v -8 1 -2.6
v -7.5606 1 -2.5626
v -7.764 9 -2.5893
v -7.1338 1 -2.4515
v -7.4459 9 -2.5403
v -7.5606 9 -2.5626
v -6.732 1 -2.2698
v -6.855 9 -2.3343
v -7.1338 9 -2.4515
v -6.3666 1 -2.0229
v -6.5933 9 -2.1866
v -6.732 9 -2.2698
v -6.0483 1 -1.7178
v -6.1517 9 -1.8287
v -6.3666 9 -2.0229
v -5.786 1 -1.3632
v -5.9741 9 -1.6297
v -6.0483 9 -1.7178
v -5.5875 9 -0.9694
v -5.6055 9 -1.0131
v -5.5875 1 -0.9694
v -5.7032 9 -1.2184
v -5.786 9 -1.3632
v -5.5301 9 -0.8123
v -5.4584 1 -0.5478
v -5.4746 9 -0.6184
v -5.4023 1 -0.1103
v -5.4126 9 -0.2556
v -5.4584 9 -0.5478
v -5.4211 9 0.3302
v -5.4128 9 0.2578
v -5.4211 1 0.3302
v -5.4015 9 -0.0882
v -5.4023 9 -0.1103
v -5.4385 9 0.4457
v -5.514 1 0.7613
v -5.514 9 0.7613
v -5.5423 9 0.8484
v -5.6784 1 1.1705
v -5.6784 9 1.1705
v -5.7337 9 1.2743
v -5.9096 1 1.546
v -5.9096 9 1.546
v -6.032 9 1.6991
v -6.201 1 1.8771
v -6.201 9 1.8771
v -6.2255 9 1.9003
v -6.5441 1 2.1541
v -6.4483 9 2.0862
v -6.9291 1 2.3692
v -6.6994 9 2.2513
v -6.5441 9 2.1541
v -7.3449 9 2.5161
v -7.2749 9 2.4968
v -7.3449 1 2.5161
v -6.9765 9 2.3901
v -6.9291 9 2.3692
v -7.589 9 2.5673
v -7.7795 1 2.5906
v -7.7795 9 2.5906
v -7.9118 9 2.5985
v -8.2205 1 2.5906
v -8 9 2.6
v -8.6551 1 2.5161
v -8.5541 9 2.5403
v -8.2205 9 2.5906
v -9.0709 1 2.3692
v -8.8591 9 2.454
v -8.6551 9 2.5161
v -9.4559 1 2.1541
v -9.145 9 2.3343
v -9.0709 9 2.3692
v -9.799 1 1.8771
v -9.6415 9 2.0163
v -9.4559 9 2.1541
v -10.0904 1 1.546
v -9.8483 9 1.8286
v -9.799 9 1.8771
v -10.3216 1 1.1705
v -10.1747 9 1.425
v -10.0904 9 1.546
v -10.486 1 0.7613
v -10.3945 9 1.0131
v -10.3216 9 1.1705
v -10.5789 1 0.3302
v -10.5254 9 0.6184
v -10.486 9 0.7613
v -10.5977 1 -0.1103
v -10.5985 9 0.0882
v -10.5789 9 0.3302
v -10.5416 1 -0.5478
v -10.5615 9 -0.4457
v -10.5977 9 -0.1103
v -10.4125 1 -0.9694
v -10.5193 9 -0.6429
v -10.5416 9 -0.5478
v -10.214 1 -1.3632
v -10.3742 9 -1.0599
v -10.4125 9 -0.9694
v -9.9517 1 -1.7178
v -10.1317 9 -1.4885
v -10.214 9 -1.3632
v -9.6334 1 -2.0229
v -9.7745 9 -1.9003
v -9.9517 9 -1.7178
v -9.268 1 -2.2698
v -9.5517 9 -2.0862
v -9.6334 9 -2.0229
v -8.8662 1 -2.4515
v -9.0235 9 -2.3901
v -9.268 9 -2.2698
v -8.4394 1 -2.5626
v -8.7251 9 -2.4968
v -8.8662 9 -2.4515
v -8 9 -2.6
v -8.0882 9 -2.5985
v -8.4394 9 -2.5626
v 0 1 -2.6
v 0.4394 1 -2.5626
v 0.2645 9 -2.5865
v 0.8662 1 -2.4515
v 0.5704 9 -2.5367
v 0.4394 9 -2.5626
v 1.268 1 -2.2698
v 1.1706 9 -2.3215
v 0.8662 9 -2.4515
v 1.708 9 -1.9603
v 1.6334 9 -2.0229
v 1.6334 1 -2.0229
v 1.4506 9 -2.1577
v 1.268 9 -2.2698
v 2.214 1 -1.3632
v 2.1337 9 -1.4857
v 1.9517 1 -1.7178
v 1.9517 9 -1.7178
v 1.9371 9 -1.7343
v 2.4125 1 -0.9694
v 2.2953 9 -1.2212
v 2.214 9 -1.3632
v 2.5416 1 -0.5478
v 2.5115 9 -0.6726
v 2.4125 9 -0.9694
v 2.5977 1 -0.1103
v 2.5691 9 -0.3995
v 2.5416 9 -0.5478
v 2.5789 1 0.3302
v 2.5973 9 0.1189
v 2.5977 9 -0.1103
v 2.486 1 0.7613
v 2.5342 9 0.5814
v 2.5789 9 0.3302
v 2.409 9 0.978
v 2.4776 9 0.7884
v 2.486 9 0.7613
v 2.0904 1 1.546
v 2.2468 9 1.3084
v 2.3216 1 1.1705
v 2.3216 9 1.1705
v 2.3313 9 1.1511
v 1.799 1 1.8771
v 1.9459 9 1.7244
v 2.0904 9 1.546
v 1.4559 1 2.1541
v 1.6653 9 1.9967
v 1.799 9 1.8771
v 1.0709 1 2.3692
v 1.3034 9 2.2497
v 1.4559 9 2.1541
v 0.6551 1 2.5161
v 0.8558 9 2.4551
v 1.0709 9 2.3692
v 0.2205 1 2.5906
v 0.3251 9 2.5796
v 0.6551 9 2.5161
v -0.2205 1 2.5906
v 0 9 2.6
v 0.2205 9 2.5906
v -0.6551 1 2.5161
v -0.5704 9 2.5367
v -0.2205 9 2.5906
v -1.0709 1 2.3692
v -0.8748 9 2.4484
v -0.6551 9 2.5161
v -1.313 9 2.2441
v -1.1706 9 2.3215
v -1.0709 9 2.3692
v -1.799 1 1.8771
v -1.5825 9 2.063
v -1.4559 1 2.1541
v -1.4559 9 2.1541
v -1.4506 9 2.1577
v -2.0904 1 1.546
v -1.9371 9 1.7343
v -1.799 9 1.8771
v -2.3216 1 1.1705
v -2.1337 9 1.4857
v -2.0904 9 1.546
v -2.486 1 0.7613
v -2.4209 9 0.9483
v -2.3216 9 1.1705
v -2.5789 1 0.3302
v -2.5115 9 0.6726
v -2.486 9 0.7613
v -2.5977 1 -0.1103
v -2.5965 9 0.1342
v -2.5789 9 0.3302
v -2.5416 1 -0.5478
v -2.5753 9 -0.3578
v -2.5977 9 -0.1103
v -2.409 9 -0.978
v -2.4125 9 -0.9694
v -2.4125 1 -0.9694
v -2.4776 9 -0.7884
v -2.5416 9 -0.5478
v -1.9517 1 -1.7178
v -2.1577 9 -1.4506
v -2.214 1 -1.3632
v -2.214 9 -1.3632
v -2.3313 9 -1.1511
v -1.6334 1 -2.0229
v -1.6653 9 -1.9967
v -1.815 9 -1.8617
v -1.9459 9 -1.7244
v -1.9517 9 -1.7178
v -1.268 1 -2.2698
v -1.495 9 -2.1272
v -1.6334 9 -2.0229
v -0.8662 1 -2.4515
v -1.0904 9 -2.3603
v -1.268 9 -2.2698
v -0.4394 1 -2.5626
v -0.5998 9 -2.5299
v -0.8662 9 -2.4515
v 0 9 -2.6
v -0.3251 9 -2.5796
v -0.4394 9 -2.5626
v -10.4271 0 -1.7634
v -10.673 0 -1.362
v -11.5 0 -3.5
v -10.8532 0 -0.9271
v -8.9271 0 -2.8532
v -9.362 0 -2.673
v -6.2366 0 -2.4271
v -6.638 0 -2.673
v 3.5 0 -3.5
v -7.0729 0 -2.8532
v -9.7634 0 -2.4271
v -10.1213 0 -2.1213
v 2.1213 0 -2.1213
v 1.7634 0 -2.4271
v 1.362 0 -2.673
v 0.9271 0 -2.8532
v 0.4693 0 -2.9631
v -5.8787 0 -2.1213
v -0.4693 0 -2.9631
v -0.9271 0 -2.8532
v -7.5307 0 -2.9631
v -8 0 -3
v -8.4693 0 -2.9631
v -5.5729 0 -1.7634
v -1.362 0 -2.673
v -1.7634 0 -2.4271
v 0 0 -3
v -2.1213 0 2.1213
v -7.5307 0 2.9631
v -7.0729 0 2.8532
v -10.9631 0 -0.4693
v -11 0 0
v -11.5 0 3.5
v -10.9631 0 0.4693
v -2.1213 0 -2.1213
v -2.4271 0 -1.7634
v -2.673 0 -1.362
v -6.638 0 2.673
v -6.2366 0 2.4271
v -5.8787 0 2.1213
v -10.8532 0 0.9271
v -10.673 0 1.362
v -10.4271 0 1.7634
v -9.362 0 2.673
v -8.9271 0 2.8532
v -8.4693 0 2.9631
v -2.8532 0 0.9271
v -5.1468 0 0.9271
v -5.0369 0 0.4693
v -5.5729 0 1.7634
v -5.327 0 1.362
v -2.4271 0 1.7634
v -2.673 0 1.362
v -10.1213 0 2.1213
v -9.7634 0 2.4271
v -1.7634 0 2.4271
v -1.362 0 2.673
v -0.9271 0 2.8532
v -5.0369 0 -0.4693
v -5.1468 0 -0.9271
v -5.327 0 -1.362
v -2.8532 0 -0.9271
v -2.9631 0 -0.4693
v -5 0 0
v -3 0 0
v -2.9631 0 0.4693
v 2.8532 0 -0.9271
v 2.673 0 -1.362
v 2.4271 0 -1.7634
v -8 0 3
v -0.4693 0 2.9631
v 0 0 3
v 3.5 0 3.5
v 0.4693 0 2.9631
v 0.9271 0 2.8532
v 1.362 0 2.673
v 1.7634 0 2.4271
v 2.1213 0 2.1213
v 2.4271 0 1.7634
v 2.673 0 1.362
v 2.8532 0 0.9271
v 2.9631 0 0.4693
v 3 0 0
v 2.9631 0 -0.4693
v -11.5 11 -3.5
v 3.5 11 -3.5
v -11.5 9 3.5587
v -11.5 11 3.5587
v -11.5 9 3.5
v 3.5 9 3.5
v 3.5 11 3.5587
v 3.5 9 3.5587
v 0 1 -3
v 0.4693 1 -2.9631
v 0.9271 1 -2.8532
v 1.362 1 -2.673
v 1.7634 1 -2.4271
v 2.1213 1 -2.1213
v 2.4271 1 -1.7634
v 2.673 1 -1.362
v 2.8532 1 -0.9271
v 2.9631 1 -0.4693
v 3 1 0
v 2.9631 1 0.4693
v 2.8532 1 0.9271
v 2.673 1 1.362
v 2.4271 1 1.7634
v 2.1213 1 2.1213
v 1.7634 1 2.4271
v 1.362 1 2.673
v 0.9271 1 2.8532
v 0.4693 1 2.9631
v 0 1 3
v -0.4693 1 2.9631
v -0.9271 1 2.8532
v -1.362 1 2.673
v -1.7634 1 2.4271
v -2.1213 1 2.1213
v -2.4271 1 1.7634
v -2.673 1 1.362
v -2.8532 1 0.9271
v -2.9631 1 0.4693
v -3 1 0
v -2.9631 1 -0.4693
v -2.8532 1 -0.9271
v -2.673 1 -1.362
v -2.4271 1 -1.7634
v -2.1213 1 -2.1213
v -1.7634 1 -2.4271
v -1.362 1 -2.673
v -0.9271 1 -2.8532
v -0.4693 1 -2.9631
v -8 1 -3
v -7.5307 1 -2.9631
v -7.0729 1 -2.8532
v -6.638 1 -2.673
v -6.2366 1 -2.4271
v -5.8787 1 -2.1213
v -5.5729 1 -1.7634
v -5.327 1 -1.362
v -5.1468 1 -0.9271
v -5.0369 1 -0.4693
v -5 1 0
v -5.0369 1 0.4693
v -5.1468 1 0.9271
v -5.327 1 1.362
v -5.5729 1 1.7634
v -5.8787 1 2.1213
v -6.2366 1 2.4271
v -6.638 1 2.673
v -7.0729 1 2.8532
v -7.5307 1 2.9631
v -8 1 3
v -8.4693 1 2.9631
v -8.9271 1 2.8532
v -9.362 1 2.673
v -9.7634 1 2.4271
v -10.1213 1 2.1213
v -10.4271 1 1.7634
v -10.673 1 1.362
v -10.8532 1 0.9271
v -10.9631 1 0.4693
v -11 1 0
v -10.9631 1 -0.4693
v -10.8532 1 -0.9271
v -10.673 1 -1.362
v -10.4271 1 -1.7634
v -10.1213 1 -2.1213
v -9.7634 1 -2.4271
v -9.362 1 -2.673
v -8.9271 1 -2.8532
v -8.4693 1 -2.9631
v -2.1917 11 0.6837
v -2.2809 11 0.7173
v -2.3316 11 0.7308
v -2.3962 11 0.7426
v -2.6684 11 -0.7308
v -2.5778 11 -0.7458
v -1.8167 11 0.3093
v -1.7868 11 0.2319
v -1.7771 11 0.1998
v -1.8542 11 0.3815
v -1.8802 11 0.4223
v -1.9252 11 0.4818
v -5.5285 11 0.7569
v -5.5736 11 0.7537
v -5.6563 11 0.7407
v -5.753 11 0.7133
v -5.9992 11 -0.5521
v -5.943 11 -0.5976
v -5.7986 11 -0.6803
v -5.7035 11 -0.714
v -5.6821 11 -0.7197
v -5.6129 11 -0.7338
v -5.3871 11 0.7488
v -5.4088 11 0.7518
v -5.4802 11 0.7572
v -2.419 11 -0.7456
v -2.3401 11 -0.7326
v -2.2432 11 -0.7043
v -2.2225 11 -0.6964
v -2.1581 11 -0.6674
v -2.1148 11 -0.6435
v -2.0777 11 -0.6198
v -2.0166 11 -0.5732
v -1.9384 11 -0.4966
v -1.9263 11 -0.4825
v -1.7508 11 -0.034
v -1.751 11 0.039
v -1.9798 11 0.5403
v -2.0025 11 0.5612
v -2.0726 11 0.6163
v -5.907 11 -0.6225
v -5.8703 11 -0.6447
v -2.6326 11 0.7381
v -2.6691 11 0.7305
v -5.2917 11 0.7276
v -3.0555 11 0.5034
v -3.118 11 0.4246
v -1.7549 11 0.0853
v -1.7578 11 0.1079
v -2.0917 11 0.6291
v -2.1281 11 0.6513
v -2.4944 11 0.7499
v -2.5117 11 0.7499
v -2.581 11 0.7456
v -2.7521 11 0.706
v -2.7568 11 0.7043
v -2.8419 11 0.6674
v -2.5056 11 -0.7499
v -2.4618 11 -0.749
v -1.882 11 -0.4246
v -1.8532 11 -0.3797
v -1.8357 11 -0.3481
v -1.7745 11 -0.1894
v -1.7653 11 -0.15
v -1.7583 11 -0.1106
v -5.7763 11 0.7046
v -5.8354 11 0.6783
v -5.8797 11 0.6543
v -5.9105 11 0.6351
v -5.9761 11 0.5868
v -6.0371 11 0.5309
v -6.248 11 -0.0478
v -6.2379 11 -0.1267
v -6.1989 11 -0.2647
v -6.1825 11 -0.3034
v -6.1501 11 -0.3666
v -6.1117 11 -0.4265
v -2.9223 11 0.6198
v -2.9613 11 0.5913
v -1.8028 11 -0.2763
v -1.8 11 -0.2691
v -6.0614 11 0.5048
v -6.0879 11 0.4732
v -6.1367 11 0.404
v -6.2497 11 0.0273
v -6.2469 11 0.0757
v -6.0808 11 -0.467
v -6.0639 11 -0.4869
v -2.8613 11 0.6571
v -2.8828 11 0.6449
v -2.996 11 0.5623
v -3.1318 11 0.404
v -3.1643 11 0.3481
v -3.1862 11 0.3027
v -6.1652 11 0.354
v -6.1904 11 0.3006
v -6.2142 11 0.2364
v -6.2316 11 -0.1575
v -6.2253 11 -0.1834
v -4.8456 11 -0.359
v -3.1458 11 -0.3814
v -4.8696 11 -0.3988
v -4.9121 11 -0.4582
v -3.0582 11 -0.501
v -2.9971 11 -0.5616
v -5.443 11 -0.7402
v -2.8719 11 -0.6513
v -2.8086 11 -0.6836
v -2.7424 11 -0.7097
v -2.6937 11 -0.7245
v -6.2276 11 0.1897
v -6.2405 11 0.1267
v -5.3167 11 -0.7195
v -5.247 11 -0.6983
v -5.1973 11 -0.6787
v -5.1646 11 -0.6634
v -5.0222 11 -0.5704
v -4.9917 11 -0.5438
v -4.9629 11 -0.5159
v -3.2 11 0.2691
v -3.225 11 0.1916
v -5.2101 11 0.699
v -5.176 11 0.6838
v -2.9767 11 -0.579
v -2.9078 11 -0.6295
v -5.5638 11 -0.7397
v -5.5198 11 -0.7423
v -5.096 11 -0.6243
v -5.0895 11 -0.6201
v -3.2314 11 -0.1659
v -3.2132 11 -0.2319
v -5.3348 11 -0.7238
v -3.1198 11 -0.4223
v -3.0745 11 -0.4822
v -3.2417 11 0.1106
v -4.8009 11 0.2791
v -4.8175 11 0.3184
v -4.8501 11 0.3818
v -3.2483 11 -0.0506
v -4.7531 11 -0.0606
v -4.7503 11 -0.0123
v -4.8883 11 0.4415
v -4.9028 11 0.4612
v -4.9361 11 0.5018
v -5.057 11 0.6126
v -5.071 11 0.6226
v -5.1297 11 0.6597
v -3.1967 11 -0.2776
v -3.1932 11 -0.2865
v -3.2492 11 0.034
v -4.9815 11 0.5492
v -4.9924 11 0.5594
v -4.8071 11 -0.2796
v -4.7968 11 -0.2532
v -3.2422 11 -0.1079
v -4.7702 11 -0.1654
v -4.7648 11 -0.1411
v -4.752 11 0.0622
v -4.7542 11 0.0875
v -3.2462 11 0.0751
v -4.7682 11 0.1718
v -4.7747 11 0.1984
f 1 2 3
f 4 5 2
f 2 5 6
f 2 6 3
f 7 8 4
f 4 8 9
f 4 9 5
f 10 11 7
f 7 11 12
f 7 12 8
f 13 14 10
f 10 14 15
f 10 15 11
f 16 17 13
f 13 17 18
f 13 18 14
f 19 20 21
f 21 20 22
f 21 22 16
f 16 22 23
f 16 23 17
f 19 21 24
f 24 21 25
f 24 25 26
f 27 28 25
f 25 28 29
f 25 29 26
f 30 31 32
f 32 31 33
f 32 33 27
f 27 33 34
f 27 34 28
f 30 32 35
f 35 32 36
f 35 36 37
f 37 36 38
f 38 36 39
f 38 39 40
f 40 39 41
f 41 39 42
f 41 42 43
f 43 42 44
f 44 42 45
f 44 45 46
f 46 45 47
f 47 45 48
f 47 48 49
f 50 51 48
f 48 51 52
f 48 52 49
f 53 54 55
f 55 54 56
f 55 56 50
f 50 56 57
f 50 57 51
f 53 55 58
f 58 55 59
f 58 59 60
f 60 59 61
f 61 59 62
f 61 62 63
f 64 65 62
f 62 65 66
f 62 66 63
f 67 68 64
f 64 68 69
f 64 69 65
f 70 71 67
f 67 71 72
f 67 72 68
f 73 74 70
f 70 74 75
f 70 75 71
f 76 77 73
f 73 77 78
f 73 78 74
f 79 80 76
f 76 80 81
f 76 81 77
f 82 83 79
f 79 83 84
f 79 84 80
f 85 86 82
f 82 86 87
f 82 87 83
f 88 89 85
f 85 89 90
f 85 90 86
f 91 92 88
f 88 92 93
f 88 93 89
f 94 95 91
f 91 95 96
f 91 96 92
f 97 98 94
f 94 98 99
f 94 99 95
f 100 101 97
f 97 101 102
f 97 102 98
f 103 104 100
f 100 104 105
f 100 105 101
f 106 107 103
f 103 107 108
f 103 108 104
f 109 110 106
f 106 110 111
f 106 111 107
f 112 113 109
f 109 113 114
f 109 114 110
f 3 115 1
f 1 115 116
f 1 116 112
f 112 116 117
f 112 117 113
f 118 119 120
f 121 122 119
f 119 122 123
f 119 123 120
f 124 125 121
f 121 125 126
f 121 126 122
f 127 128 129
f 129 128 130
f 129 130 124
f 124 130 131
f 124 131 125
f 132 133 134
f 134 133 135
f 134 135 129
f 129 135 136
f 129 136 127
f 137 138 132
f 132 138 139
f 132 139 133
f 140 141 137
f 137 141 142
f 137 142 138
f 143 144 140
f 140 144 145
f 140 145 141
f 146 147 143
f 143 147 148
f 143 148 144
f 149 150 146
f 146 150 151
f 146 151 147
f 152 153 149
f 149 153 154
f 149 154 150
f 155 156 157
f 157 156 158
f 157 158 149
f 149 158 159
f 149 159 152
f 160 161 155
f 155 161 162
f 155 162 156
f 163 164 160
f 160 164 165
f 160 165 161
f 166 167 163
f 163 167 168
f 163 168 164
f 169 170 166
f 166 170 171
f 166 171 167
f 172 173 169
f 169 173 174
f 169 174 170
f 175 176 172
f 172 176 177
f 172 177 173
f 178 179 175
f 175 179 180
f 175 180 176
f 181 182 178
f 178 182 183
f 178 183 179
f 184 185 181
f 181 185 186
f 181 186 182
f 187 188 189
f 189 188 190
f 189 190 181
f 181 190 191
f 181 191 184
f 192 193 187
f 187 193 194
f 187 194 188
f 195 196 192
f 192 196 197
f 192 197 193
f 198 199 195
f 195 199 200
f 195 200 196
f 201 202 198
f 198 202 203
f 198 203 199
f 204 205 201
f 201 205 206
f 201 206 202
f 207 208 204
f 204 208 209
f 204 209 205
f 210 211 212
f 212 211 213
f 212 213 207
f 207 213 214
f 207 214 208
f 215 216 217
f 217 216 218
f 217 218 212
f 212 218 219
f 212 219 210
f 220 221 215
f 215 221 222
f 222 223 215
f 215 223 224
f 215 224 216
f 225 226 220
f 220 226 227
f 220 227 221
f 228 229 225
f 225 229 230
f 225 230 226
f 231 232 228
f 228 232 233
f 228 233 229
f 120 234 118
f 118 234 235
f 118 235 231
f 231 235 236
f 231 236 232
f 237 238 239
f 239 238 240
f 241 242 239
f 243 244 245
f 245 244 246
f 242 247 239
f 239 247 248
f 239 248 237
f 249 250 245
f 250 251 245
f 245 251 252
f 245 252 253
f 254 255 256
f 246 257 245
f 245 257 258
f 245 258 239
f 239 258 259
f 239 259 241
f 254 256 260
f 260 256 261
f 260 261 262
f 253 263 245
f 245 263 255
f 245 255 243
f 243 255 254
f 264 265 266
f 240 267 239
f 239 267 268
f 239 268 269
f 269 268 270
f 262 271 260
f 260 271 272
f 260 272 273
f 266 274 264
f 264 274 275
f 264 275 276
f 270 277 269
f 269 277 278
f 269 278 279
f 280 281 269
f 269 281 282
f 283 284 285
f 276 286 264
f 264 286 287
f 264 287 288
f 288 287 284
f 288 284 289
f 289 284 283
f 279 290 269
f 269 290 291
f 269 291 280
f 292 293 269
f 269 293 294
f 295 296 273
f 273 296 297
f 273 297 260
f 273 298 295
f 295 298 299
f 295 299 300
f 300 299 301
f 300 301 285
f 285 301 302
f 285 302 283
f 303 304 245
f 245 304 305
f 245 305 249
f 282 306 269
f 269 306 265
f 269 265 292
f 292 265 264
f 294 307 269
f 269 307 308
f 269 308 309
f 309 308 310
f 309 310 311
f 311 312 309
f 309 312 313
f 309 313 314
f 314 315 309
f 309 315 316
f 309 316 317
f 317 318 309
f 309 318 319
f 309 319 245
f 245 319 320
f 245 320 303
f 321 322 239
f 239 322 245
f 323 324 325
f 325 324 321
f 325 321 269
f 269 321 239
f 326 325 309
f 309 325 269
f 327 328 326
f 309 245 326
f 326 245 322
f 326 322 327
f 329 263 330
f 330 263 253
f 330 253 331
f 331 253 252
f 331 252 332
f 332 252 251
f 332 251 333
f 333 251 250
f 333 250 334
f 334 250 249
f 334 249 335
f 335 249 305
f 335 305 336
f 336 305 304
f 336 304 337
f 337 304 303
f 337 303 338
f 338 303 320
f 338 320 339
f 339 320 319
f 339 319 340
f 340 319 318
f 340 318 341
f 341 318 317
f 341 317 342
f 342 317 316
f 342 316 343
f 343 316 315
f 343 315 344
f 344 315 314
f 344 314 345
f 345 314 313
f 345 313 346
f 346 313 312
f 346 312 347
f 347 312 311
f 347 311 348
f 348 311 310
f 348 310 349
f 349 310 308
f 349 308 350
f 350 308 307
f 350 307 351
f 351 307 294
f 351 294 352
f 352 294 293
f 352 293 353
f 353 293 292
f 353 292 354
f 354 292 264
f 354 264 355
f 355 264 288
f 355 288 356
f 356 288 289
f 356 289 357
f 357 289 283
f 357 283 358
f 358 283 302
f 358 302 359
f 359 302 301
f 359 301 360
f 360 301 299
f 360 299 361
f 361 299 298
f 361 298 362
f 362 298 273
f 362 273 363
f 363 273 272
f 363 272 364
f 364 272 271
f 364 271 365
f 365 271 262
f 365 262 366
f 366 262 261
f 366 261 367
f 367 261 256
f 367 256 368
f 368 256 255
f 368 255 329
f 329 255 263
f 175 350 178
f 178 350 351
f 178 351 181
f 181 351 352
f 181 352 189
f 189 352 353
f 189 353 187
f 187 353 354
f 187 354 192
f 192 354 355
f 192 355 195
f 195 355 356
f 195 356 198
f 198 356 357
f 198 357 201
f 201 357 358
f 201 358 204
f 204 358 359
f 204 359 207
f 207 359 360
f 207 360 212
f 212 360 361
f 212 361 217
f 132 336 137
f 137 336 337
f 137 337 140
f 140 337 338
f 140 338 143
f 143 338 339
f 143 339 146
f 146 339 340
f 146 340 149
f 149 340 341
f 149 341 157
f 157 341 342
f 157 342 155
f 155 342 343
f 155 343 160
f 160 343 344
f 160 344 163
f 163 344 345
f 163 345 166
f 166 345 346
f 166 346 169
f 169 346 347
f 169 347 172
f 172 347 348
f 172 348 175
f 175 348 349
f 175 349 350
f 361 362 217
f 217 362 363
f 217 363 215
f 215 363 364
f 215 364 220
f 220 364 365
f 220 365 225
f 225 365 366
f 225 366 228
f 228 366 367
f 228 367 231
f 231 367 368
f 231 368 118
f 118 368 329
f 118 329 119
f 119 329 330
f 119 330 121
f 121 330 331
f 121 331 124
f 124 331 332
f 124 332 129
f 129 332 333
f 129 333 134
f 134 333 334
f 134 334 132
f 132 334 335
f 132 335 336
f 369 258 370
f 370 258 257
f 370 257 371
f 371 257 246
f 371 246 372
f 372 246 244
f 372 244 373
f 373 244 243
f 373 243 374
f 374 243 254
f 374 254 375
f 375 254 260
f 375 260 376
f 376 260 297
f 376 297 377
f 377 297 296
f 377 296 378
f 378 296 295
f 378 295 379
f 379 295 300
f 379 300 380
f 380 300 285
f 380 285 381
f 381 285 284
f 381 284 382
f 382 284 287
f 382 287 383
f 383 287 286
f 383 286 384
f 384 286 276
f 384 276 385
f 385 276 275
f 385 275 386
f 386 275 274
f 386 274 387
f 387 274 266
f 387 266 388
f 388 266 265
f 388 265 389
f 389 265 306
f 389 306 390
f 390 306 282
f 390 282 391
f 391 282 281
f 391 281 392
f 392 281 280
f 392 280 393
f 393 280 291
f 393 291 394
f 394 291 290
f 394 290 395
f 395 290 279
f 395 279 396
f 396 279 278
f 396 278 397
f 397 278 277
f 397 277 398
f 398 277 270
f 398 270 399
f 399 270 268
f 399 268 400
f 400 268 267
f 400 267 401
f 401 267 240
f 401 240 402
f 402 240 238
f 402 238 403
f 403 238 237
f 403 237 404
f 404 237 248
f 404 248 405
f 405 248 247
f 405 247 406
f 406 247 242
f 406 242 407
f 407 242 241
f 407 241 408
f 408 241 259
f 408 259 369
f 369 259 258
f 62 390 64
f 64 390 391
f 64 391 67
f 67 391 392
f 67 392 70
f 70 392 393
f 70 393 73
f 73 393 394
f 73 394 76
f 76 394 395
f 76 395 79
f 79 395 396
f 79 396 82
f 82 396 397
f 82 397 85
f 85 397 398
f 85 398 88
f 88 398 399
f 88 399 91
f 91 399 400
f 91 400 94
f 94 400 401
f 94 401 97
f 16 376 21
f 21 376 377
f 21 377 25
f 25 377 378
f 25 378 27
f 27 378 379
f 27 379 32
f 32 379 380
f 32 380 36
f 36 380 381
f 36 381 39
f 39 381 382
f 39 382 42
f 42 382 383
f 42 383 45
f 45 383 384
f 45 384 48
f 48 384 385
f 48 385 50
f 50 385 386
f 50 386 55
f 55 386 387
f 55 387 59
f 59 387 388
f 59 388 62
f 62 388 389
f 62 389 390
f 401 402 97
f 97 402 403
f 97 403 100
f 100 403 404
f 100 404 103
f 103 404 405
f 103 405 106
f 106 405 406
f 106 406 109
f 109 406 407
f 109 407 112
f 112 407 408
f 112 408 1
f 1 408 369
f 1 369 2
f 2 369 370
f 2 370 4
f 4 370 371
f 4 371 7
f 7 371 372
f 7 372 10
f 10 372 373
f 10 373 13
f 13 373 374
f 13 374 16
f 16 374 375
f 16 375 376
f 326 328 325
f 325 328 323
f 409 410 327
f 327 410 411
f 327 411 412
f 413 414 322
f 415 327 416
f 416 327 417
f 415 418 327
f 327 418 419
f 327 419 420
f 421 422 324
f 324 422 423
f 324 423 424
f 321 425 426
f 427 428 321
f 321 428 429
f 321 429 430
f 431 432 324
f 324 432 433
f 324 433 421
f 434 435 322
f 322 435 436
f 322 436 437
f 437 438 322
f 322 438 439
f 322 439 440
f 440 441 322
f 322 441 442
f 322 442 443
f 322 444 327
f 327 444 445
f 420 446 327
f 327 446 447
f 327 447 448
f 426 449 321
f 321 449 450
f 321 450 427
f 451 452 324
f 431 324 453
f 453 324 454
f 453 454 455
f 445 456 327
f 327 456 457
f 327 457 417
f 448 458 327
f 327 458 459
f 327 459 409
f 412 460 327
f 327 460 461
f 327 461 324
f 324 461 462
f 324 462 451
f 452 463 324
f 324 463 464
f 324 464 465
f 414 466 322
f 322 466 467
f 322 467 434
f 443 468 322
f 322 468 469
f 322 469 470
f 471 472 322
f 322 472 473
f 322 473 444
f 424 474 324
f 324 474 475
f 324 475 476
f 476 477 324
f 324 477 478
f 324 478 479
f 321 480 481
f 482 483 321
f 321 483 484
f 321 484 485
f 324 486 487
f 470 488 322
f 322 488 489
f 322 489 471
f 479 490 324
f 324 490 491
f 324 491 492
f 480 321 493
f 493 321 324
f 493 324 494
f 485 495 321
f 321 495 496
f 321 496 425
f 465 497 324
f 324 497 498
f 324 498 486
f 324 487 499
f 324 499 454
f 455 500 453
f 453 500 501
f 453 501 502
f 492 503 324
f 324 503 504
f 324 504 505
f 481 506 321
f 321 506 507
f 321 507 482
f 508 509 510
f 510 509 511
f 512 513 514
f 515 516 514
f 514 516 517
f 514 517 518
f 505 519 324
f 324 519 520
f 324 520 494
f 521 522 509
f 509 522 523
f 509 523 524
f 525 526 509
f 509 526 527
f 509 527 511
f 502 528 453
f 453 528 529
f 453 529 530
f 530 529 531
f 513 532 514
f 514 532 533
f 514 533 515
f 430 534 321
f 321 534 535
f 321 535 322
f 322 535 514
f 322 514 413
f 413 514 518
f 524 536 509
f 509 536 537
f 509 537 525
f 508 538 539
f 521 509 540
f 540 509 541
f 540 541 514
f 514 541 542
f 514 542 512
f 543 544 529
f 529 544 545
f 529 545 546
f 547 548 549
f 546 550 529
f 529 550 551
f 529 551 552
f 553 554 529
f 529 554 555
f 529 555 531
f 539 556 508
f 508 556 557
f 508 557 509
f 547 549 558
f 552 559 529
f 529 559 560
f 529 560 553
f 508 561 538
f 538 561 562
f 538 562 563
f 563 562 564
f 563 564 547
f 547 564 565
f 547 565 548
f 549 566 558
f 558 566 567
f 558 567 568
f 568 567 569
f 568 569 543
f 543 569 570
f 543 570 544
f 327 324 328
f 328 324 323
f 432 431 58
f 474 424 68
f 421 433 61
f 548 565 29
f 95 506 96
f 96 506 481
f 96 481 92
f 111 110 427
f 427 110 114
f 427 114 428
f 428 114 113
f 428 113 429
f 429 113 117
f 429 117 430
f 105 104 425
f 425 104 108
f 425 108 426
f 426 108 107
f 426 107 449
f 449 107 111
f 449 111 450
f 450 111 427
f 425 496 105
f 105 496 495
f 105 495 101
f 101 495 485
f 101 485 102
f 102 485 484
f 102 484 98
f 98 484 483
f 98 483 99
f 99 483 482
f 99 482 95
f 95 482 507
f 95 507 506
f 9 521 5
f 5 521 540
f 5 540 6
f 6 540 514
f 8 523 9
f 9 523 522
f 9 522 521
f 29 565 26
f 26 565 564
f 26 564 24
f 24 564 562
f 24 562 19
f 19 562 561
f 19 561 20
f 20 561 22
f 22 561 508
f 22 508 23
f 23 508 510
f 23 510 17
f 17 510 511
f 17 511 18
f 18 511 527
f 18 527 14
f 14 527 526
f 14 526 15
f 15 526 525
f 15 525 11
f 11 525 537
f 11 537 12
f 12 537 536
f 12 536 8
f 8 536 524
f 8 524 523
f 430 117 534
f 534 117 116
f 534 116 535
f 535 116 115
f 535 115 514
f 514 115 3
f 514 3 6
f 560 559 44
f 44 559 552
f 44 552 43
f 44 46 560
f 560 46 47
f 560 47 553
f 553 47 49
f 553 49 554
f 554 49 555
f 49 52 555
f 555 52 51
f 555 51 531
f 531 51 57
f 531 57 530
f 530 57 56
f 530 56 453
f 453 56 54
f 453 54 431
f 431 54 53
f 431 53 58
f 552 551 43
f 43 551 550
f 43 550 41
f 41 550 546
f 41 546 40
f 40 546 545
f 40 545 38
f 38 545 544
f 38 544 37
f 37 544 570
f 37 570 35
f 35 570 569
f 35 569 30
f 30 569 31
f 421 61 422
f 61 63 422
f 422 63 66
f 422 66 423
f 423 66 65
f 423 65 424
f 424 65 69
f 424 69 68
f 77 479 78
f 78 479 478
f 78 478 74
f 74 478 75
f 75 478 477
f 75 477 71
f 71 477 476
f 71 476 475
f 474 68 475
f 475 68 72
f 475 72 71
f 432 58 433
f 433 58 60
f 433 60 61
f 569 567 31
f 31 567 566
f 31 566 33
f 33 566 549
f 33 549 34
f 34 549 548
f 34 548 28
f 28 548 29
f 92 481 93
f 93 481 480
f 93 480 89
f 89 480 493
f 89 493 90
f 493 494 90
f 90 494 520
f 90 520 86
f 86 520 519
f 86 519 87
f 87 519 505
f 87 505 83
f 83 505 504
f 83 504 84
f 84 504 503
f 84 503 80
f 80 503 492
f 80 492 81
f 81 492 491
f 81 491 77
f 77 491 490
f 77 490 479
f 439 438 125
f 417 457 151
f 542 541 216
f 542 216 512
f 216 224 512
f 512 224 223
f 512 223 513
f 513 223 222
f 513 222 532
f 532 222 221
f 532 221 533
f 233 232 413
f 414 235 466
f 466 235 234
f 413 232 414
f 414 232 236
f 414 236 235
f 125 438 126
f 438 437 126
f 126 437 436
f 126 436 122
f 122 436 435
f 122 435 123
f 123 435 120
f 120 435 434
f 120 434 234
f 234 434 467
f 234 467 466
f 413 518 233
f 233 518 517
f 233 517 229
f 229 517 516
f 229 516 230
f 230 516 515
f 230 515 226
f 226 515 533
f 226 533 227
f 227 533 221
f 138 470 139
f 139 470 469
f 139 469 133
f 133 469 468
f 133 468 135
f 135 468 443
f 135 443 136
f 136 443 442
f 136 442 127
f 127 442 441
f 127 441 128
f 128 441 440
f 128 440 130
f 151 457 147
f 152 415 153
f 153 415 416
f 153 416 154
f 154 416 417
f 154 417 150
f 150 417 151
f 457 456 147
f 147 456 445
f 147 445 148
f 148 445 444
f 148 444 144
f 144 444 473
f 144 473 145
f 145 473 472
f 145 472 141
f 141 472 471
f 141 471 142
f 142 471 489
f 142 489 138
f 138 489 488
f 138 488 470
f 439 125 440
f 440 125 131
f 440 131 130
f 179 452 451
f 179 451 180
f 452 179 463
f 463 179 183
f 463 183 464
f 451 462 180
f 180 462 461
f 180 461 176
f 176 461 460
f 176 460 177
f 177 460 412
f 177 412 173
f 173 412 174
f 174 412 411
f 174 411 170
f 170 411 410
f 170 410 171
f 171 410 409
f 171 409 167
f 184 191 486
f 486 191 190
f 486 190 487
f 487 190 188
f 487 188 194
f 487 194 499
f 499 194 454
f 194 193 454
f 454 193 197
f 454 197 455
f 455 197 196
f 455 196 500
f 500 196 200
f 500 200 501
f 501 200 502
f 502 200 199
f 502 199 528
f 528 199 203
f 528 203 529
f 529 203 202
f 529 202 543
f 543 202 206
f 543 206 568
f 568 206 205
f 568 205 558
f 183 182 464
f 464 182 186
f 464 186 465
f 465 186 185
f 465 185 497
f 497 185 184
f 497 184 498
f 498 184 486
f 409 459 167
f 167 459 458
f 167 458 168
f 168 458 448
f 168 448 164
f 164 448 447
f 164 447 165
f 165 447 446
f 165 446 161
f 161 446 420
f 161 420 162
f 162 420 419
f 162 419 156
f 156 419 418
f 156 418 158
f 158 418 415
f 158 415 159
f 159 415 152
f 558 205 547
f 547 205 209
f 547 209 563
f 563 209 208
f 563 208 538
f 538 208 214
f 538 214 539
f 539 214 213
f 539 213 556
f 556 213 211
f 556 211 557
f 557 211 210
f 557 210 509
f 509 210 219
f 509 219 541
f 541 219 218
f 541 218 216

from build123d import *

# Parameters (mm, degrees)
CROQUIS1_W              = 15
CROQUIS1_H              = 7
CROQUIS1_R              = 2.6
SALIENTE_EXTRUIR1_DEPTH = 9
CROQUIS2_R              = 3
CORTAR_EXTRUIR1_DEPTH   = 1
CROQUIS3_W              = 15
CROQUIS3_H              = 7.058739116
SALIENTE_EXTRUIR2_DEPTH = 2
CROQUIS4_R              = 0.75
CROQUIS9_R              = 0.75


with BuildPart() as part:
    # Croquis1 → Saliente-Extruir1 (new body)
    with BuildSketch(Plane(origin=(0, 0, 0), x_dir=(1, 0, 0), z_dir=(0, 1, 0))):
        with Locations((-4, 0)):
            Rectangle(CROQUIS1_W, CROQUIS1_H)
        Circle(CROQUIS1_R, mode=Mode.SUBTRACT)
        with Locations((-8, 0)):
            Circle(CROQUIS1_R, mode=Mode.SUBTRACT)
    extrude(amount=SALIENTE_EXTRUIR1_DEPTH)

    # Croquis2 → Cortar-Extruir1 (cut)
    with BuildSketch(Plane.XZ):
        Circle(CROQUIS2_R)
        with Locations((-8, 0)):
            Circle(CROQUIS2_R)
    extrude(amount=-CORTAR_EXTRUIR1_DEPTH, mode=Mode.SUBTRACT)

    # Croquis3 → Saliente-Extruir2 (add)
    with BuildSketch(Plane(origin=(0, 9, 0), x_dir=(1, 0, 0), z_dir=(0, 1, 0))):
        with Locations((-4, -0.029369558)):
            Rectangle(CROQUIS3_W, CROQUIS3_H)
    extrude(amount=SALIENTE_EXTRUIR2_DEPTH)

    # Croquis4 → section 0 of cortar_recubrir3
    with BuildSketch(Plane(origin=(0, 11, 0), x_dir=(1, 0, 0), z_dir=(0, 1, 0)), mode=Mode.PRIVATE) as cortar_recubrir3_s0:
        with Locations((-5.5, -0.007482418)):
            Circle(CROQUIS4_R)
    # loft up to a face of the part (cortar_recubrir3)
    loft([cortar_recubrir3_s0.sketch, part.faces().sort_by_distance((-8, 9, 0))[0]], mode=Mode.SUBTRACT)

    # Croquis9 → section 0 of cortar_recubrir4
    with BuildSketch(Plane(origin=(0, 11, 0), x_dir=(1, 0, 0), z_dir=(0, 1, 0)), mode=Mode.PRIVATE) as cortar_recubrir4_s0:
        with Locations((-2.5, 0)):
            Circle(CROQUIS9_R)
    # loft up to a face of the part (cortar_recubrir4)
    loft([cortar_recubrir4_s0.sketch, part.faces().sort_by_distance((0, 9, 0))[0]], mode=Mode.SUBTRACT)


solid = part.part
